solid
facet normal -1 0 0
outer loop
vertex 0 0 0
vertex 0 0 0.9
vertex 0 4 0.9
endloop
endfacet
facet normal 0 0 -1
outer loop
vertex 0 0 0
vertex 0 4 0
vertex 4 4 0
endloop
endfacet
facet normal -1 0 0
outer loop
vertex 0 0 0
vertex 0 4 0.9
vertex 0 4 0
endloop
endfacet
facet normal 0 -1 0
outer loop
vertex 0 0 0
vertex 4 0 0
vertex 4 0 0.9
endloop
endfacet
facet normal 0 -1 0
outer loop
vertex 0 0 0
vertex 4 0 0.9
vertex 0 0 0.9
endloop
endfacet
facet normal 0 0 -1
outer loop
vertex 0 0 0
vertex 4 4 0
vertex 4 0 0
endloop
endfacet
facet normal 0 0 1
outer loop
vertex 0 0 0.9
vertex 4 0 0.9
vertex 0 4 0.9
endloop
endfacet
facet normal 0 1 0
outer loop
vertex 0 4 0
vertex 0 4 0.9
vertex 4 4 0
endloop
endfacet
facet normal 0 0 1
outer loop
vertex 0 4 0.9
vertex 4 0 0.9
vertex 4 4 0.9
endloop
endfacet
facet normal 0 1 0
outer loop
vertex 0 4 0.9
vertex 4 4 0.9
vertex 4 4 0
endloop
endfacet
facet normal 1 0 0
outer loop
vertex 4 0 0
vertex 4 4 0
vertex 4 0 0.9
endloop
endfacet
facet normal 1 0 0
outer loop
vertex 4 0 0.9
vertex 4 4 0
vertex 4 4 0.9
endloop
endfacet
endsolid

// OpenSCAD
/* Warning, this is a very basic generator with a lot of approximation 
input data : [VQFN, RHB, 4x4x0.9mm, 32, , A, C04-21383A]
generated by com.zoubworld.electronics.cad.model3d.Basic
Date : Sun Feb 15 10:50:49 CET 2026
*/

//body
color("black")
translate([0,0,0])
cube([4.0,4.0,0.9], center=false);
